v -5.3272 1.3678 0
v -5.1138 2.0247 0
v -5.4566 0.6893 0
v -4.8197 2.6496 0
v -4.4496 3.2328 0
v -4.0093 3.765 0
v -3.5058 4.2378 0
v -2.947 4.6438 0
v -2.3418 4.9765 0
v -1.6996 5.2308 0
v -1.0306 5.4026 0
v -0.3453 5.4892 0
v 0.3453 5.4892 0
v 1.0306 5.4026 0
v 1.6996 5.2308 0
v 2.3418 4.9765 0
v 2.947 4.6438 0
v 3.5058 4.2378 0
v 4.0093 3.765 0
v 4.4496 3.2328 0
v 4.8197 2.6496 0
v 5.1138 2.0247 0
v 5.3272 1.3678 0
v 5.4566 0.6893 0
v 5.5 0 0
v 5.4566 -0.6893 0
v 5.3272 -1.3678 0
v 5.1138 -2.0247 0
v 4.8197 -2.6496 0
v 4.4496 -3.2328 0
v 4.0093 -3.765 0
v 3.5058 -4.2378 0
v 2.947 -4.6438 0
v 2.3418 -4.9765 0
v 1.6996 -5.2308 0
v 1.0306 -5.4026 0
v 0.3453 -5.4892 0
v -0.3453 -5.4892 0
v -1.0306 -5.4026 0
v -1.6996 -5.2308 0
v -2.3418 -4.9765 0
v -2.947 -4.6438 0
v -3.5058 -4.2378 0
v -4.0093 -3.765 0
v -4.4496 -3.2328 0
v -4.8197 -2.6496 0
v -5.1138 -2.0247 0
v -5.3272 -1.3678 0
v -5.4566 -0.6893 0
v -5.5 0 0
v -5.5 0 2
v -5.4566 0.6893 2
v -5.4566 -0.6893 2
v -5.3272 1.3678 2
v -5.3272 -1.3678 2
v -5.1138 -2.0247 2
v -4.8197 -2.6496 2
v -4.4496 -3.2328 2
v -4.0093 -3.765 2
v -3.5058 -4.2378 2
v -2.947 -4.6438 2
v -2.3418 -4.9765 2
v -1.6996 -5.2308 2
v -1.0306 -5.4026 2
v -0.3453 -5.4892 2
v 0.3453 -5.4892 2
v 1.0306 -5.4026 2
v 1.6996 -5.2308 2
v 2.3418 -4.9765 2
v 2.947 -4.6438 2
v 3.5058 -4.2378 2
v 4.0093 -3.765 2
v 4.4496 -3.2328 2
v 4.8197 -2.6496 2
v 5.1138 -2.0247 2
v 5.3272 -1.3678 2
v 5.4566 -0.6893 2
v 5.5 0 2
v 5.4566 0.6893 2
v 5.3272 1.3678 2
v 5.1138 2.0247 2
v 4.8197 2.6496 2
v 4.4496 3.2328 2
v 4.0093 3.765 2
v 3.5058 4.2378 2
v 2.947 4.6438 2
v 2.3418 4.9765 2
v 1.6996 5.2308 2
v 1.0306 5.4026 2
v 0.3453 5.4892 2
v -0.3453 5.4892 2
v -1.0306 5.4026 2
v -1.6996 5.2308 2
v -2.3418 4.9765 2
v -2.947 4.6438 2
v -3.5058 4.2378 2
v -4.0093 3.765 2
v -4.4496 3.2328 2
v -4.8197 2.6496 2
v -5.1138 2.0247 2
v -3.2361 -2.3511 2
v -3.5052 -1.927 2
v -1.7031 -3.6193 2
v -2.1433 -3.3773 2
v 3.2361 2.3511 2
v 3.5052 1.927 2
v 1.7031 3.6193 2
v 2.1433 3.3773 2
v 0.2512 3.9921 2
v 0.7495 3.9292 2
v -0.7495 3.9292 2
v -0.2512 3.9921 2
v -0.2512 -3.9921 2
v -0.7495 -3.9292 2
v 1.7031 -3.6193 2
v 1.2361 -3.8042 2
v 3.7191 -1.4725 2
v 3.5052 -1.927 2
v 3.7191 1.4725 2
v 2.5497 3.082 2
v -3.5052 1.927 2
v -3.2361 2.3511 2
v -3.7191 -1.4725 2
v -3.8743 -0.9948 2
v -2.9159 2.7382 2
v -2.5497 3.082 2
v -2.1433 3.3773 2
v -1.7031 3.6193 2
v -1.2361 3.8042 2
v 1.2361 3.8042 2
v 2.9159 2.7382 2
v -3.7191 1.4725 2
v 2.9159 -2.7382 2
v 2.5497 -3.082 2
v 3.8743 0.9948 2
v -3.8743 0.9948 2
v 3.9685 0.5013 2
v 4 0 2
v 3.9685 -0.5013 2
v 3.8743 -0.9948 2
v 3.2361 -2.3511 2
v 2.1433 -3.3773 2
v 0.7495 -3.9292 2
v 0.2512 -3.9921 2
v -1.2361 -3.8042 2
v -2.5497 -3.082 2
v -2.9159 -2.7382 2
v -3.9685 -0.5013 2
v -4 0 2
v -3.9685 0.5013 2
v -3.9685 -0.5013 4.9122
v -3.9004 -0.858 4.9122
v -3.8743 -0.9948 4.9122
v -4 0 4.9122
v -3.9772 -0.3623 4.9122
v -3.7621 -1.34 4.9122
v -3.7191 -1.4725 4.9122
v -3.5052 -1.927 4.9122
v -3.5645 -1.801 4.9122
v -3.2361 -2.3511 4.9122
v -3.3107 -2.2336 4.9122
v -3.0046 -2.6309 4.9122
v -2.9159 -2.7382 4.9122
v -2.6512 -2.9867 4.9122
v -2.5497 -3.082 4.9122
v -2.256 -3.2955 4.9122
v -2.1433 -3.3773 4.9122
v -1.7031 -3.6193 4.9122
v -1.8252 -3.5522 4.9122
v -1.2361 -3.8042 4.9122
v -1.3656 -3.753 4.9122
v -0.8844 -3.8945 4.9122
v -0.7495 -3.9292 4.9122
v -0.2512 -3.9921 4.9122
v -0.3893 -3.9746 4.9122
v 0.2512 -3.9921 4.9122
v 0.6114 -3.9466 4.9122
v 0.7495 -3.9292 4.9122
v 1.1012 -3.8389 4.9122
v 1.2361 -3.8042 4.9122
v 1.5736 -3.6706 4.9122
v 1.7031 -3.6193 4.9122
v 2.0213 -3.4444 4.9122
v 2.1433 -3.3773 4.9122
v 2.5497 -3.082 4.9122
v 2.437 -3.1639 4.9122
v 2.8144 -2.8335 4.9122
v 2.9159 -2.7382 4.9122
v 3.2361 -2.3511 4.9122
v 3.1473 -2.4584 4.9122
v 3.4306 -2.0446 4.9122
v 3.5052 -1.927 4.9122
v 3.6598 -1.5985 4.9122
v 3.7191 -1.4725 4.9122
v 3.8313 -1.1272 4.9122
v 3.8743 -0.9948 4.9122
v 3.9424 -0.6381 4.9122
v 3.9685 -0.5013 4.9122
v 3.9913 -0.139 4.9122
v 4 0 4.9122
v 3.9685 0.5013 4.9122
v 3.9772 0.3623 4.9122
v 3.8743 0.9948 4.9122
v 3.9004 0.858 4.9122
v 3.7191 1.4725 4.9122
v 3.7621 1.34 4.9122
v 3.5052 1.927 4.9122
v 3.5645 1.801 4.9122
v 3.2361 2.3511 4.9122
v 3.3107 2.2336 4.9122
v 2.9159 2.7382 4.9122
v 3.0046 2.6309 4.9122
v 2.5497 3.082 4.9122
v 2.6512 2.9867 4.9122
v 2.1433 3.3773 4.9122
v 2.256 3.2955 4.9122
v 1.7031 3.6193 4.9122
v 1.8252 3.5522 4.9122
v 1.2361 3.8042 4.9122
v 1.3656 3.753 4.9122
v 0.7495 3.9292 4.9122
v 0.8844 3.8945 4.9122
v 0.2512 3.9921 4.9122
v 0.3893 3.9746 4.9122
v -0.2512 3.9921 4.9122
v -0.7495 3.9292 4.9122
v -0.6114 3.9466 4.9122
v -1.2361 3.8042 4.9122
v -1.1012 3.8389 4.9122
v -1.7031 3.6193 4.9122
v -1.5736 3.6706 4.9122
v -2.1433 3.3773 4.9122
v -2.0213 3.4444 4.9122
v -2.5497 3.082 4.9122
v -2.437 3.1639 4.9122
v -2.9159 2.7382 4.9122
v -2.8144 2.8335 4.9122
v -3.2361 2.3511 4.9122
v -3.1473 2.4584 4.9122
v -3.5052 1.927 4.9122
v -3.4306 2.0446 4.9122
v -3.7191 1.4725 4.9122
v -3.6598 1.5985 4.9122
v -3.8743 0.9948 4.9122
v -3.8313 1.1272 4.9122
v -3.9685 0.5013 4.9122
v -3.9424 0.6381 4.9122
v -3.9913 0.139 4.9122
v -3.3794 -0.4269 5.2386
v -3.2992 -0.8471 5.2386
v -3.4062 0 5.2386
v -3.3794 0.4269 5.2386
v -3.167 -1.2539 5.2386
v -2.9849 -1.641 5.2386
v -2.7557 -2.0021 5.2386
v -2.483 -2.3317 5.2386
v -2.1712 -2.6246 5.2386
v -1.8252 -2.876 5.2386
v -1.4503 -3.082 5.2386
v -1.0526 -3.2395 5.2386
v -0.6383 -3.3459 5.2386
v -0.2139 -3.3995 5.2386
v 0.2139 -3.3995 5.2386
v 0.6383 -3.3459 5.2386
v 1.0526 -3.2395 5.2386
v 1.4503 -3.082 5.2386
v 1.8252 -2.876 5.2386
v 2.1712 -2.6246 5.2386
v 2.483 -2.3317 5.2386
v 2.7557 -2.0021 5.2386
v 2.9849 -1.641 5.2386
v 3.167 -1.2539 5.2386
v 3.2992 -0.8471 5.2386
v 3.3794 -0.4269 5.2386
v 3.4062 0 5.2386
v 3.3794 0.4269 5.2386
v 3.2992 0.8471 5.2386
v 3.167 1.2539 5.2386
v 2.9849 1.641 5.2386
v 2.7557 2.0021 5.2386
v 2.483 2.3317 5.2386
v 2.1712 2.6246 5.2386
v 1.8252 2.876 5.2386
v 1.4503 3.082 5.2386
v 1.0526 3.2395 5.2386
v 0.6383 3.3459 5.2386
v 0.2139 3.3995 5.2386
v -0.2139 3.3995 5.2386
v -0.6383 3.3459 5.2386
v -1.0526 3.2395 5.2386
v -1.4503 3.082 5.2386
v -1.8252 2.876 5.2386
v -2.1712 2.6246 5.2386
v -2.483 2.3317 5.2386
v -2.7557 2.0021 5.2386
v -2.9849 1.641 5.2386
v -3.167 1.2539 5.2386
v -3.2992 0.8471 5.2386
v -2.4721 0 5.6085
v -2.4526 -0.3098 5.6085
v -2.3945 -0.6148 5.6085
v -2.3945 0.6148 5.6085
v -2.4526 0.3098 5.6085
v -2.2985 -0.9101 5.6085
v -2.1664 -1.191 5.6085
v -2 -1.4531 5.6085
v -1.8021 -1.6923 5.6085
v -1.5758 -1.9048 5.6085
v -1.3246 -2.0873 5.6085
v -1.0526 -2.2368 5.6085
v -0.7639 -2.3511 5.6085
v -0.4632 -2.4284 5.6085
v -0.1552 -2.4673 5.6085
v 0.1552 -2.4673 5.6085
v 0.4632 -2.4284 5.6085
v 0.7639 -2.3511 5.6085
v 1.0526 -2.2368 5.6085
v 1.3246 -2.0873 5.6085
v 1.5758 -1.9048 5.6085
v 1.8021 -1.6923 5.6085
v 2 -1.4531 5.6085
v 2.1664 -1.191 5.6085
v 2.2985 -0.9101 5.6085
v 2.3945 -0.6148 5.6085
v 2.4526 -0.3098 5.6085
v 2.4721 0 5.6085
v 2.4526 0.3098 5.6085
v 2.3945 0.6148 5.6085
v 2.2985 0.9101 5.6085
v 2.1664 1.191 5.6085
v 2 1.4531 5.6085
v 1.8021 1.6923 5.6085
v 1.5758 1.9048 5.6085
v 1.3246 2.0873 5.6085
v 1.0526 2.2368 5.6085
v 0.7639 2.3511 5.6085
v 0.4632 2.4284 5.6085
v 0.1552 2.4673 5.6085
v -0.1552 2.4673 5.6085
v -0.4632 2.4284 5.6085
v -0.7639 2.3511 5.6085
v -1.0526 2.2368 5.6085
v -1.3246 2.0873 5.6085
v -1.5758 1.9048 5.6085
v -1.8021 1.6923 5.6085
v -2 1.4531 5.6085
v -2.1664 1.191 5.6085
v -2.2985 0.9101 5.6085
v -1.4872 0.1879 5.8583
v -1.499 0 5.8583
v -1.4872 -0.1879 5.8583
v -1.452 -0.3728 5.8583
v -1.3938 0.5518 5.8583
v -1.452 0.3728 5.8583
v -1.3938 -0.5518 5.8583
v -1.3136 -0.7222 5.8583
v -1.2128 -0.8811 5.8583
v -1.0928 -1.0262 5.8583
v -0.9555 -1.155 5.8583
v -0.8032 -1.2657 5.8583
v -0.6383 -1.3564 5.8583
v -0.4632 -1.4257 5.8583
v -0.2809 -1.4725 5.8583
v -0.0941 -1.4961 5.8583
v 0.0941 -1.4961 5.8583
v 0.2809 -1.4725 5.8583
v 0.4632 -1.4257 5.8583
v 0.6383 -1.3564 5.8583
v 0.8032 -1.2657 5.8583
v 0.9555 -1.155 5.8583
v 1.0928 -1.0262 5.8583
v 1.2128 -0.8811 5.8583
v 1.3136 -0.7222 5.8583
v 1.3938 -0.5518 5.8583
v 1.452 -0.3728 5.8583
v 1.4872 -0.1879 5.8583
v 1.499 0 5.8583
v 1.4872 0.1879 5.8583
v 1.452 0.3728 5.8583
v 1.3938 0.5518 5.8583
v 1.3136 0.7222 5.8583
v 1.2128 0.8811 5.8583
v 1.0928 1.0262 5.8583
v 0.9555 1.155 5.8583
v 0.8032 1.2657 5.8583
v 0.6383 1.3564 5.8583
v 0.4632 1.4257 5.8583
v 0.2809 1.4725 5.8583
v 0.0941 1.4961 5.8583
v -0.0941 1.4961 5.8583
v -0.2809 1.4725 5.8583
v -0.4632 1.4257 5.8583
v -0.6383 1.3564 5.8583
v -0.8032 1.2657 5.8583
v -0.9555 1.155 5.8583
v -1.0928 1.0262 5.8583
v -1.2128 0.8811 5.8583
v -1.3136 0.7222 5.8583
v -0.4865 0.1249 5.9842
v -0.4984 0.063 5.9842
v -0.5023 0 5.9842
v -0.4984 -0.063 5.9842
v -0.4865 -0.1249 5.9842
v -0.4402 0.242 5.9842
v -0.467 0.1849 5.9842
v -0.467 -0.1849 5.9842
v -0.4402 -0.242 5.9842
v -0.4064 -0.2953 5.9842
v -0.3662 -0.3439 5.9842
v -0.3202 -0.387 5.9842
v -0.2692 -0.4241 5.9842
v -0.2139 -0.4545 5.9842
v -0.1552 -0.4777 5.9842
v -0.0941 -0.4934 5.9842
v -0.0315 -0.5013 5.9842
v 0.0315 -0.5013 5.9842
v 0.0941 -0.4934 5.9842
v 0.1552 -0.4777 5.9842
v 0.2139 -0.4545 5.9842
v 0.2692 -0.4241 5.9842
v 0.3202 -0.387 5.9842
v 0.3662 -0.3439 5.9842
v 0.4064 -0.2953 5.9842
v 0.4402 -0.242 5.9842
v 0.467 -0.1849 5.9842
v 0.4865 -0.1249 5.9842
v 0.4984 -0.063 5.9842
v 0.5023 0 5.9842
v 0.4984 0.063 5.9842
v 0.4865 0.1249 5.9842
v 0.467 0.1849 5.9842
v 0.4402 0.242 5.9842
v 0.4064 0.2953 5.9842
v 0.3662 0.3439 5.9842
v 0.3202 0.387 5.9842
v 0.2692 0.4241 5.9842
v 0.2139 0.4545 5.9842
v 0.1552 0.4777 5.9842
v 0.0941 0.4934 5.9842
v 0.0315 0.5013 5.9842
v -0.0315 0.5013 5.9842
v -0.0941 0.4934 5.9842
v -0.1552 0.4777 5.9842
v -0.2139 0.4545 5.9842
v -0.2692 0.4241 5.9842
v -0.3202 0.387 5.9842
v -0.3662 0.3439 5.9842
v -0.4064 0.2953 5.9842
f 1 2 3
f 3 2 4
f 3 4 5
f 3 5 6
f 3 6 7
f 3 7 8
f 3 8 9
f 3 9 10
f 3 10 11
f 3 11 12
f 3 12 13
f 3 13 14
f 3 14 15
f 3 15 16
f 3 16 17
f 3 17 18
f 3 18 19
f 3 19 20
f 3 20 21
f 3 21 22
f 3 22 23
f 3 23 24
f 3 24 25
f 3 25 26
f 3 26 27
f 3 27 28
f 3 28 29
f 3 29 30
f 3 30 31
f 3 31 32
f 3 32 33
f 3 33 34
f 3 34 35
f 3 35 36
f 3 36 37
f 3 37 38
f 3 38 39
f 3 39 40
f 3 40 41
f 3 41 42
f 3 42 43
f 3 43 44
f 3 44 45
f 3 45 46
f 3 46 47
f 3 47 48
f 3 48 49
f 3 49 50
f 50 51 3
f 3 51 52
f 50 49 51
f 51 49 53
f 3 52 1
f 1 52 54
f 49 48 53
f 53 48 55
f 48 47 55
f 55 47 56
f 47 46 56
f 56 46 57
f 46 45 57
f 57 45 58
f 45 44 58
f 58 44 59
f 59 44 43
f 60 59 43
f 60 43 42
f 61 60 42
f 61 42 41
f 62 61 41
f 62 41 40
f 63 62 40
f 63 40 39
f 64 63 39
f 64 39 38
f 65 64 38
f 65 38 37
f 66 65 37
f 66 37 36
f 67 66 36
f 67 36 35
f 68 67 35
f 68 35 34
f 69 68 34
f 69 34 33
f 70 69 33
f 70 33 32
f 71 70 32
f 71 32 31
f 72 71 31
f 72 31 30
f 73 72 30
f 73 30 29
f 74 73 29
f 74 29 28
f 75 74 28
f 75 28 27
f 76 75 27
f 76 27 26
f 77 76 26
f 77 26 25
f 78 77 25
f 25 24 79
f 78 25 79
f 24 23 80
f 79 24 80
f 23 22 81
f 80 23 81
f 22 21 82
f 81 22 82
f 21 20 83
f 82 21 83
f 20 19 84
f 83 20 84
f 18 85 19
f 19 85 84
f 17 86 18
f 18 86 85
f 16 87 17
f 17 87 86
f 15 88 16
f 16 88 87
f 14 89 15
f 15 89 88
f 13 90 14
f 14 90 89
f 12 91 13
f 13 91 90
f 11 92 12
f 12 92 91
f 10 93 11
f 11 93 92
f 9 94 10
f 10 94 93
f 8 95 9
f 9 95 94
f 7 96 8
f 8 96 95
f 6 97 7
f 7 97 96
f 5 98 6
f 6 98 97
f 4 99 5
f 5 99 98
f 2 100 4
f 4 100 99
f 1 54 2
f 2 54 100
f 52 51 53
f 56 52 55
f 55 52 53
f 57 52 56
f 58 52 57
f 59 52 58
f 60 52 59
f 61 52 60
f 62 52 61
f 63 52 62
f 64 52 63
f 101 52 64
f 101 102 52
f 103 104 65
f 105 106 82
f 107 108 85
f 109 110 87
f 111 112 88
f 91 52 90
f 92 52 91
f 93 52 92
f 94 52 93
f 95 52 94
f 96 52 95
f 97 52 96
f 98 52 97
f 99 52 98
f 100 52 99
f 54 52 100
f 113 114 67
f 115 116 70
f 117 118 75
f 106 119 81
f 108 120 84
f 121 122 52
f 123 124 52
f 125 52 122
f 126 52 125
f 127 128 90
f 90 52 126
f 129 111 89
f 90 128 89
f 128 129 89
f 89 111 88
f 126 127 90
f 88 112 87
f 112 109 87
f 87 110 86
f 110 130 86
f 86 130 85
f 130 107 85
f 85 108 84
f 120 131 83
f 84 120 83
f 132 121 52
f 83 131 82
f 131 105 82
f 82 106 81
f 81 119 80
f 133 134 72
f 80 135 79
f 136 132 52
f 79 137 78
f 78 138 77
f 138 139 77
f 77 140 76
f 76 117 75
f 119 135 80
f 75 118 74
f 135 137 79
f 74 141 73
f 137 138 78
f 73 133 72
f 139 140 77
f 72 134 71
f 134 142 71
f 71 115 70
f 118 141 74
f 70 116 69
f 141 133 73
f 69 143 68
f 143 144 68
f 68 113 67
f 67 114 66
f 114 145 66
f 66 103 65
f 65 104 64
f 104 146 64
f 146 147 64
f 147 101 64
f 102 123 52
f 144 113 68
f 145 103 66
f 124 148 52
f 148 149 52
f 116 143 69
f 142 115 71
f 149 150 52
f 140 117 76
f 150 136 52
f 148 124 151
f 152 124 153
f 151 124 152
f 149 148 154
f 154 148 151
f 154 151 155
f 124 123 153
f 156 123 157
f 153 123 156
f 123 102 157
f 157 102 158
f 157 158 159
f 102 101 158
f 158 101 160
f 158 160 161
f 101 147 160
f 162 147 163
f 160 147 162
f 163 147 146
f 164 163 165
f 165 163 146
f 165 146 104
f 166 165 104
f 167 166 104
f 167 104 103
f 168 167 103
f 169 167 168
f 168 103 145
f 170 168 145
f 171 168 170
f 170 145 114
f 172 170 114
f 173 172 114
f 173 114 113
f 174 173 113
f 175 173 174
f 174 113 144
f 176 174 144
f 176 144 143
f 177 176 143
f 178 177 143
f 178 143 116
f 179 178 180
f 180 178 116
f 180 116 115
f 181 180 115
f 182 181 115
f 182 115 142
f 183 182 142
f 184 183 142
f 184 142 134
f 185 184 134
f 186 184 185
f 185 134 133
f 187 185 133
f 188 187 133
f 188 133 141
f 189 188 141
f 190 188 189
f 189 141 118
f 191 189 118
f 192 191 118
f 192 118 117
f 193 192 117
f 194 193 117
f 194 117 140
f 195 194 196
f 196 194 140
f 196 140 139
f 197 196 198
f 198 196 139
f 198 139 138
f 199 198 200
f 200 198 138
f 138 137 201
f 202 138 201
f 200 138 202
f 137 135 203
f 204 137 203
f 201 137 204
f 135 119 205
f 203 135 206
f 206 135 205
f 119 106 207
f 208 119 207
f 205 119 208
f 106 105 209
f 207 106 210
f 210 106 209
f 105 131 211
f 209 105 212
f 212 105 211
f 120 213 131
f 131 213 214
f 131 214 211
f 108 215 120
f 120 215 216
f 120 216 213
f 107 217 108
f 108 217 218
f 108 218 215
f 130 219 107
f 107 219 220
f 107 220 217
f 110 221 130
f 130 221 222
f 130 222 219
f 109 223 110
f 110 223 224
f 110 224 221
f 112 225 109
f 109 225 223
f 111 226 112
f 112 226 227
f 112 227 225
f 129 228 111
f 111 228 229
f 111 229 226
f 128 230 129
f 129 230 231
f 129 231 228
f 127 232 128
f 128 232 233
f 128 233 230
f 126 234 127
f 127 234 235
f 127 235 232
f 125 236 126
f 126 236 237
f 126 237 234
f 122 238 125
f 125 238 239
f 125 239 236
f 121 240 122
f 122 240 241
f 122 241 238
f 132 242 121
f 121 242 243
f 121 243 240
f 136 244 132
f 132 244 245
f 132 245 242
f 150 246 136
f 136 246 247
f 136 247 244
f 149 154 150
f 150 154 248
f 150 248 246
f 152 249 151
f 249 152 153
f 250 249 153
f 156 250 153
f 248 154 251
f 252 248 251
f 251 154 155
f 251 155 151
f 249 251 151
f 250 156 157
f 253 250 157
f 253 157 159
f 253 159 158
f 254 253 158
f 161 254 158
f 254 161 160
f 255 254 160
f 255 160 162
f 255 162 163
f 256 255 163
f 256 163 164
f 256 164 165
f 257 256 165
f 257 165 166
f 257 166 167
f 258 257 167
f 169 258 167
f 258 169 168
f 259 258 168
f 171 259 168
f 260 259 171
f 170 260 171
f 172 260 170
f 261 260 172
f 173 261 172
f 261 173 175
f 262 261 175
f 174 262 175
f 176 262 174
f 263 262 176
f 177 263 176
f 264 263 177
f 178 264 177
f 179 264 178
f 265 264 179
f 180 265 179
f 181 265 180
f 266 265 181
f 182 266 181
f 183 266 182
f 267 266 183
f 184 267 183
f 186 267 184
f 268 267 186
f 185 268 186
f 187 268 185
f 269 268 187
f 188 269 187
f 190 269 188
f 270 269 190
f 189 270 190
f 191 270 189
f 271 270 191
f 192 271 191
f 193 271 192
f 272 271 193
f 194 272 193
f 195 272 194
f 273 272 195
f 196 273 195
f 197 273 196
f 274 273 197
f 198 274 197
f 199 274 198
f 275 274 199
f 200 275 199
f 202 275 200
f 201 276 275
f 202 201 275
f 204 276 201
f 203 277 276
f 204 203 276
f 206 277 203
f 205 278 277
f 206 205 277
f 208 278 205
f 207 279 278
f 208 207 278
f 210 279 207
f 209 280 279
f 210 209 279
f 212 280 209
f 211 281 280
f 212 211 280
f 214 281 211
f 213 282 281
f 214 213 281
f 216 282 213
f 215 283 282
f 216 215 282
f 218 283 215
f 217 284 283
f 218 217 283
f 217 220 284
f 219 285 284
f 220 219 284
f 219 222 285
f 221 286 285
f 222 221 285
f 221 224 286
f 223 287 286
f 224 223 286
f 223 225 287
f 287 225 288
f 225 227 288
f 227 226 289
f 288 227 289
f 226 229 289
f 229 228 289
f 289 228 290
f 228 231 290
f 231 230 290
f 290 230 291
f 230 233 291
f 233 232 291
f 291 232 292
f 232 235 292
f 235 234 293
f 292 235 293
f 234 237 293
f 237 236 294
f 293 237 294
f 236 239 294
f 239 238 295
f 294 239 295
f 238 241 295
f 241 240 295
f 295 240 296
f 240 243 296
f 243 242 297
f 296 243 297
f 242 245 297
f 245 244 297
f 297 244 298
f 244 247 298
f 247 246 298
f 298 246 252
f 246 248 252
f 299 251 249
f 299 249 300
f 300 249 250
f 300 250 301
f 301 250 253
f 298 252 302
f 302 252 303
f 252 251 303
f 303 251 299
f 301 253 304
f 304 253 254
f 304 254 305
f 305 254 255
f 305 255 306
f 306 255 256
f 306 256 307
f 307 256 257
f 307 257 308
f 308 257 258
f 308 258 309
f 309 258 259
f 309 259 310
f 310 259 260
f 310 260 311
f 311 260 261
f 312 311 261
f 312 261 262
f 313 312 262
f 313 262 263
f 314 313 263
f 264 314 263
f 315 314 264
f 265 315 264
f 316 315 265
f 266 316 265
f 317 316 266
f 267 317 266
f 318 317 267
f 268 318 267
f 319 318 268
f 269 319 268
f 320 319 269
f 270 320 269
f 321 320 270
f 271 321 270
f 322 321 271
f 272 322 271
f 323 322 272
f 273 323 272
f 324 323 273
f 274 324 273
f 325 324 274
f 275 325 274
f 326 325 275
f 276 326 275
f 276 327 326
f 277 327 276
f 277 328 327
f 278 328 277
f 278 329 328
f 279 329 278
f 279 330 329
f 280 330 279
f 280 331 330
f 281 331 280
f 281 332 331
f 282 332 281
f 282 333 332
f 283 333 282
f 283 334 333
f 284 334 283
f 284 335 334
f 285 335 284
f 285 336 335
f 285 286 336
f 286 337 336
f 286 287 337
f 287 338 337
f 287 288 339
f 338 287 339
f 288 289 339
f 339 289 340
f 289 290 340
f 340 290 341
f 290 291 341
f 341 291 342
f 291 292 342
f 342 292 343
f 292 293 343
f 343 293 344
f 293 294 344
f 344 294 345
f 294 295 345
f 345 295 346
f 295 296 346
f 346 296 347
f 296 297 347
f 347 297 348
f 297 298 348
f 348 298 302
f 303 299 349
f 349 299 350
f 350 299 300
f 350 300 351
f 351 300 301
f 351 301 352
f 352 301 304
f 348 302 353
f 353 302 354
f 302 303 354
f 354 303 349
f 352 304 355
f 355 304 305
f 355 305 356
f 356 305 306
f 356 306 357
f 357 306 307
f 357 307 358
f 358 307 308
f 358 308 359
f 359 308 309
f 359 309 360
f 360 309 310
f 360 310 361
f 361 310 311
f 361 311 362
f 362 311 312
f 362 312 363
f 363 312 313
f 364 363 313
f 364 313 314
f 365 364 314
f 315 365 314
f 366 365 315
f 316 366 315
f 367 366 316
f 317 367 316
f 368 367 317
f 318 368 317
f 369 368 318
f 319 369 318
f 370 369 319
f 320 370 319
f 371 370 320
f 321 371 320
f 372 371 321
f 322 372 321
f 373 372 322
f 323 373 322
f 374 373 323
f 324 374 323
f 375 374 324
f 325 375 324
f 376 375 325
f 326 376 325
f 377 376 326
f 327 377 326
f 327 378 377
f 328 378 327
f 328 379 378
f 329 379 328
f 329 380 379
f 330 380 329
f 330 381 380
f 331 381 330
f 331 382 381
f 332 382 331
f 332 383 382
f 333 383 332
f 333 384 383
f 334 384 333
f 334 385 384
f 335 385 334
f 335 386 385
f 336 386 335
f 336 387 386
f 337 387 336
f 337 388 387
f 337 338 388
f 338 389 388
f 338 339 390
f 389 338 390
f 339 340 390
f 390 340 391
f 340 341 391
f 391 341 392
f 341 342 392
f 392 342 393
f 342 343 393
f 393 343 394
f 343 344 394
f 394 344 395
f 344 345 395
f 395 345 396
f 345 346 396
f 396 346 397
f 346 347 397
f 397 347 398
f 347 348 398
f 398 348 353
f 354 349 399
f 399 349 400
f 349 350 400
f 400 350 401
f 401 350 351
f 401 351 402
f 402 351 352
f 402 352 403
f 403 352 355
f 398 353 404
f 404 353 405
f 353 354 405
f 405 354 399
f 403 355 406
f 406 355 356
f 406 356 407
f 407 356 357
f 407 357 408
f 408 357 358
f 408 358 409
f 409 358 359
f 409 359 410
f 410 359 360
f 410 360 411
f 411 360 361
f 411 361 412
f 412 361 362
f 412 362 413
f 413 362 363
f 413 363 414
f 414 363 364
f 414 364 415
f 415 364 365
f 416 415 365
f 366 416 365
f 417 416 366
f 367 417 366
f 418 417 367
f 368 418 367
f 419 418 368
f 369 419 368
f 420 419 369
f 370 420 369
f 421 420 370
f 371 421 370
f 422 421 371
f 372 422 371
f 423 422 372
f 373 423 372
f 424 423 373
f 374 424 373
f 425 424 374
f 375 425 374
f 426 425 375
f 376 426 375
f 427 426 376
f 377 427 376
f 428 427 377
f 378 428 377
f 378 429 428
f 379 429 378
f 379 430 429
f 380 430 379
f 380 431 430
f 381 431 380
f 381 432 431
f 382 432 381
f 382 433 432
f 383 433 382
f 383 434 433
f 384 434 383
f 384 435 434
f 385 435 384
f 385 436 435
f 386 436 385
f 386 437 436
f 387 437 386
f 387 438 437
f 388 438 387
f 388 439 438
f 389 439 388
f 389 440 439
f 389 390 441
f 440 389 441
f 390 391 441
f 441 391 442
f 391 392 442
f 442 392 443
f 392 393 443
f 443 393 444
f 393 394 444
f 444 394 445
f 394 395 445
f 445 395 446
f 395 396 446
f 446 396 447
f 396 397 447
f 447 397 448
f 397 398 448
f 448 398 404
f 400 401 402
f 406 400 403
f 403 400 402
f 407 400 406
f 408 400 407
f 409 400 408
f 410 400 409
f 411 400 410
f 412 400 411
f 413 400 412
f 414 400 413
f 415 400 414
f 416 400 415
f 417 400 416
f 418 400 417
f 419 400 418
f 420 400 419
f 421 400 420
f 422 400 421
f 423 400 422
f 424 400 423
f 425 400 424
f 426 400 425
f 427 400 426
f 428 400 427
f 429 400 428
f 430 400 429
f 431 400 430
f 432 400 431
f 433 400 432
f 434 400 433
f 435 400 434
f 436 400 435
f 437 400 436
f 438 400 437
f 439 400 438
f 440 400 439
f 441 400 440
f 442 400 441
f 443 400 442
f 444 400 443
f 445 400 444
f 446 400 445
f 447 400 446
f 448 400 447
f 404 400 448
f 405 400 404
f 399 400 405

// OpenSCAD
// file: shapes.scad
// Advanced shapes
//
//	v 1.0 - 24/01/2015 - initial release (MD)
//	v 1.1 - 05/02/2014 - added half-sphere (MD)
//

module round_cube(x,y,z,r) {
	hull() {
		translate([r, r, 0]) 		cylinder(h = z, r = r) ; 
		translate([r, y - r, 0]) 		cylinder(h = z, r = r) ; 
		translate([x - r, r, 0]) 		cylinder(h = z, r = r) ; 
		translate([x - r, y - r, 0]) 	cylinder(h = z, r = r) ; 
	}
}

module round_belt(x,y,z,r,t) {
	// x, y, z, r are outer dimensions, thickness t is inwards
	difference() {
		round_cube(x, y, z, r) ;
		translate([t, t, 0]) round_cube(x-2*t, y-2*t, z, r-t) ;
	}
}

module spacers(x1,x2,y1,y2,z,r) {
	translate([x1, y1, 0]) 	cylinder(h = z, r = r) ; 
	translate([x1, y2, 0]) 	cylinder(h = z, r = r) ; 
	translate([x2, y1, 0]) 	cylinder(h = z, r = r) ; 
	translate([x2, y2, 0])	cylinder(h = z, r = r) ; 
}

module truncated_square_pyramid(x1,y1,x2,y2,z) {
	dx = (x1-x2)/2 ;
	dy = (y1-y2)/2 ;
	ax = 90 - atan2(z, dx) ;
	ay = 90 - atan2(z, dy) ;
	
	difference() {
		translate([0, 0, z/2])  cube(size=[x1,y1,z], center=true) ; 
		union() {
			translate([-x1/2, 0, 0]) 	 rotate([0, ax, 0]) 
				translate([-x1/2, 0, z]) cube(size=[x1,y1,2*z], center=true) ; 
			translate([ x1/2, 0, 0]) 	 rotate([0, -ax, 0]) 
				translate([ x1/2, 0, z]) cube(size=[x1,y1,2*z], center=true) ; 
			translate([0, -y1/2, 0]) 	 rotate([-ay, 0, 0]) 
				translate([0, -y1/2, z]) cube(size=[x1,y1,2*z], center=true) ;
			translate([0,  y1/2, 0]) 	 rotate([ ay, 0, 0]) 
				translate([0,  y1/2, z]) cube(size=[x1,y1,2*z], center=true) ;
		}
	}
}

module halfsphere( r) {
	difference() {
		sphere (r = r) ; 
		translate([0, 0, -r/2]) 
			cube(size=[2*r, 2*r, r], center=true) ;
	}	
}

// --- end of file ---
// main file
// raspberry pi model b+ case top button
//
//	v 1.2 - 06/02/2015 - initial release (MD)
//

// parameters
$fn = 50 ;

// parameters copied from myRaspiBp.scad
cover_inside_t = 2.00 ;	// box cover material thickess
clearance_z 	   = 2.00 ; // clearance on Z axis for daughter board
Btn_r    	   = 4.00 ;	// push button radius
foot_z         = 2.00 ;	// foot thickness 

// specific parameters
Btn_protrusion = 2.00 ;
Btn_foot_r_extension = 1.50 ;
Btn_top_rounding = 8 ;

// derived parameters
z_size = cover_inside_t + clearance_z + Btn_protrusion ;	// button z dimension
foot_r = Btn_r + Btn_foot_r_extension ;	// button foot radius 

// modules
include <shapes.scad>

// create device
union() {
	cylinder(h= foot_z, r= foot_r) ;

	difference() {
		translate([0, 0, z_size - Btn_top_rounding])  
			intersection() {
				cylinder(h = Btn_top_rounding, r = Btn_r) ;
				halfsphere (Btn_top_rounding) ; 
			}
		translate([0, 0, -foot_r/2]) 
			cube( size = [2*foot_r, 2*foot_r, foot_r], center=true) ;
	}
}




// --- end of file ---
